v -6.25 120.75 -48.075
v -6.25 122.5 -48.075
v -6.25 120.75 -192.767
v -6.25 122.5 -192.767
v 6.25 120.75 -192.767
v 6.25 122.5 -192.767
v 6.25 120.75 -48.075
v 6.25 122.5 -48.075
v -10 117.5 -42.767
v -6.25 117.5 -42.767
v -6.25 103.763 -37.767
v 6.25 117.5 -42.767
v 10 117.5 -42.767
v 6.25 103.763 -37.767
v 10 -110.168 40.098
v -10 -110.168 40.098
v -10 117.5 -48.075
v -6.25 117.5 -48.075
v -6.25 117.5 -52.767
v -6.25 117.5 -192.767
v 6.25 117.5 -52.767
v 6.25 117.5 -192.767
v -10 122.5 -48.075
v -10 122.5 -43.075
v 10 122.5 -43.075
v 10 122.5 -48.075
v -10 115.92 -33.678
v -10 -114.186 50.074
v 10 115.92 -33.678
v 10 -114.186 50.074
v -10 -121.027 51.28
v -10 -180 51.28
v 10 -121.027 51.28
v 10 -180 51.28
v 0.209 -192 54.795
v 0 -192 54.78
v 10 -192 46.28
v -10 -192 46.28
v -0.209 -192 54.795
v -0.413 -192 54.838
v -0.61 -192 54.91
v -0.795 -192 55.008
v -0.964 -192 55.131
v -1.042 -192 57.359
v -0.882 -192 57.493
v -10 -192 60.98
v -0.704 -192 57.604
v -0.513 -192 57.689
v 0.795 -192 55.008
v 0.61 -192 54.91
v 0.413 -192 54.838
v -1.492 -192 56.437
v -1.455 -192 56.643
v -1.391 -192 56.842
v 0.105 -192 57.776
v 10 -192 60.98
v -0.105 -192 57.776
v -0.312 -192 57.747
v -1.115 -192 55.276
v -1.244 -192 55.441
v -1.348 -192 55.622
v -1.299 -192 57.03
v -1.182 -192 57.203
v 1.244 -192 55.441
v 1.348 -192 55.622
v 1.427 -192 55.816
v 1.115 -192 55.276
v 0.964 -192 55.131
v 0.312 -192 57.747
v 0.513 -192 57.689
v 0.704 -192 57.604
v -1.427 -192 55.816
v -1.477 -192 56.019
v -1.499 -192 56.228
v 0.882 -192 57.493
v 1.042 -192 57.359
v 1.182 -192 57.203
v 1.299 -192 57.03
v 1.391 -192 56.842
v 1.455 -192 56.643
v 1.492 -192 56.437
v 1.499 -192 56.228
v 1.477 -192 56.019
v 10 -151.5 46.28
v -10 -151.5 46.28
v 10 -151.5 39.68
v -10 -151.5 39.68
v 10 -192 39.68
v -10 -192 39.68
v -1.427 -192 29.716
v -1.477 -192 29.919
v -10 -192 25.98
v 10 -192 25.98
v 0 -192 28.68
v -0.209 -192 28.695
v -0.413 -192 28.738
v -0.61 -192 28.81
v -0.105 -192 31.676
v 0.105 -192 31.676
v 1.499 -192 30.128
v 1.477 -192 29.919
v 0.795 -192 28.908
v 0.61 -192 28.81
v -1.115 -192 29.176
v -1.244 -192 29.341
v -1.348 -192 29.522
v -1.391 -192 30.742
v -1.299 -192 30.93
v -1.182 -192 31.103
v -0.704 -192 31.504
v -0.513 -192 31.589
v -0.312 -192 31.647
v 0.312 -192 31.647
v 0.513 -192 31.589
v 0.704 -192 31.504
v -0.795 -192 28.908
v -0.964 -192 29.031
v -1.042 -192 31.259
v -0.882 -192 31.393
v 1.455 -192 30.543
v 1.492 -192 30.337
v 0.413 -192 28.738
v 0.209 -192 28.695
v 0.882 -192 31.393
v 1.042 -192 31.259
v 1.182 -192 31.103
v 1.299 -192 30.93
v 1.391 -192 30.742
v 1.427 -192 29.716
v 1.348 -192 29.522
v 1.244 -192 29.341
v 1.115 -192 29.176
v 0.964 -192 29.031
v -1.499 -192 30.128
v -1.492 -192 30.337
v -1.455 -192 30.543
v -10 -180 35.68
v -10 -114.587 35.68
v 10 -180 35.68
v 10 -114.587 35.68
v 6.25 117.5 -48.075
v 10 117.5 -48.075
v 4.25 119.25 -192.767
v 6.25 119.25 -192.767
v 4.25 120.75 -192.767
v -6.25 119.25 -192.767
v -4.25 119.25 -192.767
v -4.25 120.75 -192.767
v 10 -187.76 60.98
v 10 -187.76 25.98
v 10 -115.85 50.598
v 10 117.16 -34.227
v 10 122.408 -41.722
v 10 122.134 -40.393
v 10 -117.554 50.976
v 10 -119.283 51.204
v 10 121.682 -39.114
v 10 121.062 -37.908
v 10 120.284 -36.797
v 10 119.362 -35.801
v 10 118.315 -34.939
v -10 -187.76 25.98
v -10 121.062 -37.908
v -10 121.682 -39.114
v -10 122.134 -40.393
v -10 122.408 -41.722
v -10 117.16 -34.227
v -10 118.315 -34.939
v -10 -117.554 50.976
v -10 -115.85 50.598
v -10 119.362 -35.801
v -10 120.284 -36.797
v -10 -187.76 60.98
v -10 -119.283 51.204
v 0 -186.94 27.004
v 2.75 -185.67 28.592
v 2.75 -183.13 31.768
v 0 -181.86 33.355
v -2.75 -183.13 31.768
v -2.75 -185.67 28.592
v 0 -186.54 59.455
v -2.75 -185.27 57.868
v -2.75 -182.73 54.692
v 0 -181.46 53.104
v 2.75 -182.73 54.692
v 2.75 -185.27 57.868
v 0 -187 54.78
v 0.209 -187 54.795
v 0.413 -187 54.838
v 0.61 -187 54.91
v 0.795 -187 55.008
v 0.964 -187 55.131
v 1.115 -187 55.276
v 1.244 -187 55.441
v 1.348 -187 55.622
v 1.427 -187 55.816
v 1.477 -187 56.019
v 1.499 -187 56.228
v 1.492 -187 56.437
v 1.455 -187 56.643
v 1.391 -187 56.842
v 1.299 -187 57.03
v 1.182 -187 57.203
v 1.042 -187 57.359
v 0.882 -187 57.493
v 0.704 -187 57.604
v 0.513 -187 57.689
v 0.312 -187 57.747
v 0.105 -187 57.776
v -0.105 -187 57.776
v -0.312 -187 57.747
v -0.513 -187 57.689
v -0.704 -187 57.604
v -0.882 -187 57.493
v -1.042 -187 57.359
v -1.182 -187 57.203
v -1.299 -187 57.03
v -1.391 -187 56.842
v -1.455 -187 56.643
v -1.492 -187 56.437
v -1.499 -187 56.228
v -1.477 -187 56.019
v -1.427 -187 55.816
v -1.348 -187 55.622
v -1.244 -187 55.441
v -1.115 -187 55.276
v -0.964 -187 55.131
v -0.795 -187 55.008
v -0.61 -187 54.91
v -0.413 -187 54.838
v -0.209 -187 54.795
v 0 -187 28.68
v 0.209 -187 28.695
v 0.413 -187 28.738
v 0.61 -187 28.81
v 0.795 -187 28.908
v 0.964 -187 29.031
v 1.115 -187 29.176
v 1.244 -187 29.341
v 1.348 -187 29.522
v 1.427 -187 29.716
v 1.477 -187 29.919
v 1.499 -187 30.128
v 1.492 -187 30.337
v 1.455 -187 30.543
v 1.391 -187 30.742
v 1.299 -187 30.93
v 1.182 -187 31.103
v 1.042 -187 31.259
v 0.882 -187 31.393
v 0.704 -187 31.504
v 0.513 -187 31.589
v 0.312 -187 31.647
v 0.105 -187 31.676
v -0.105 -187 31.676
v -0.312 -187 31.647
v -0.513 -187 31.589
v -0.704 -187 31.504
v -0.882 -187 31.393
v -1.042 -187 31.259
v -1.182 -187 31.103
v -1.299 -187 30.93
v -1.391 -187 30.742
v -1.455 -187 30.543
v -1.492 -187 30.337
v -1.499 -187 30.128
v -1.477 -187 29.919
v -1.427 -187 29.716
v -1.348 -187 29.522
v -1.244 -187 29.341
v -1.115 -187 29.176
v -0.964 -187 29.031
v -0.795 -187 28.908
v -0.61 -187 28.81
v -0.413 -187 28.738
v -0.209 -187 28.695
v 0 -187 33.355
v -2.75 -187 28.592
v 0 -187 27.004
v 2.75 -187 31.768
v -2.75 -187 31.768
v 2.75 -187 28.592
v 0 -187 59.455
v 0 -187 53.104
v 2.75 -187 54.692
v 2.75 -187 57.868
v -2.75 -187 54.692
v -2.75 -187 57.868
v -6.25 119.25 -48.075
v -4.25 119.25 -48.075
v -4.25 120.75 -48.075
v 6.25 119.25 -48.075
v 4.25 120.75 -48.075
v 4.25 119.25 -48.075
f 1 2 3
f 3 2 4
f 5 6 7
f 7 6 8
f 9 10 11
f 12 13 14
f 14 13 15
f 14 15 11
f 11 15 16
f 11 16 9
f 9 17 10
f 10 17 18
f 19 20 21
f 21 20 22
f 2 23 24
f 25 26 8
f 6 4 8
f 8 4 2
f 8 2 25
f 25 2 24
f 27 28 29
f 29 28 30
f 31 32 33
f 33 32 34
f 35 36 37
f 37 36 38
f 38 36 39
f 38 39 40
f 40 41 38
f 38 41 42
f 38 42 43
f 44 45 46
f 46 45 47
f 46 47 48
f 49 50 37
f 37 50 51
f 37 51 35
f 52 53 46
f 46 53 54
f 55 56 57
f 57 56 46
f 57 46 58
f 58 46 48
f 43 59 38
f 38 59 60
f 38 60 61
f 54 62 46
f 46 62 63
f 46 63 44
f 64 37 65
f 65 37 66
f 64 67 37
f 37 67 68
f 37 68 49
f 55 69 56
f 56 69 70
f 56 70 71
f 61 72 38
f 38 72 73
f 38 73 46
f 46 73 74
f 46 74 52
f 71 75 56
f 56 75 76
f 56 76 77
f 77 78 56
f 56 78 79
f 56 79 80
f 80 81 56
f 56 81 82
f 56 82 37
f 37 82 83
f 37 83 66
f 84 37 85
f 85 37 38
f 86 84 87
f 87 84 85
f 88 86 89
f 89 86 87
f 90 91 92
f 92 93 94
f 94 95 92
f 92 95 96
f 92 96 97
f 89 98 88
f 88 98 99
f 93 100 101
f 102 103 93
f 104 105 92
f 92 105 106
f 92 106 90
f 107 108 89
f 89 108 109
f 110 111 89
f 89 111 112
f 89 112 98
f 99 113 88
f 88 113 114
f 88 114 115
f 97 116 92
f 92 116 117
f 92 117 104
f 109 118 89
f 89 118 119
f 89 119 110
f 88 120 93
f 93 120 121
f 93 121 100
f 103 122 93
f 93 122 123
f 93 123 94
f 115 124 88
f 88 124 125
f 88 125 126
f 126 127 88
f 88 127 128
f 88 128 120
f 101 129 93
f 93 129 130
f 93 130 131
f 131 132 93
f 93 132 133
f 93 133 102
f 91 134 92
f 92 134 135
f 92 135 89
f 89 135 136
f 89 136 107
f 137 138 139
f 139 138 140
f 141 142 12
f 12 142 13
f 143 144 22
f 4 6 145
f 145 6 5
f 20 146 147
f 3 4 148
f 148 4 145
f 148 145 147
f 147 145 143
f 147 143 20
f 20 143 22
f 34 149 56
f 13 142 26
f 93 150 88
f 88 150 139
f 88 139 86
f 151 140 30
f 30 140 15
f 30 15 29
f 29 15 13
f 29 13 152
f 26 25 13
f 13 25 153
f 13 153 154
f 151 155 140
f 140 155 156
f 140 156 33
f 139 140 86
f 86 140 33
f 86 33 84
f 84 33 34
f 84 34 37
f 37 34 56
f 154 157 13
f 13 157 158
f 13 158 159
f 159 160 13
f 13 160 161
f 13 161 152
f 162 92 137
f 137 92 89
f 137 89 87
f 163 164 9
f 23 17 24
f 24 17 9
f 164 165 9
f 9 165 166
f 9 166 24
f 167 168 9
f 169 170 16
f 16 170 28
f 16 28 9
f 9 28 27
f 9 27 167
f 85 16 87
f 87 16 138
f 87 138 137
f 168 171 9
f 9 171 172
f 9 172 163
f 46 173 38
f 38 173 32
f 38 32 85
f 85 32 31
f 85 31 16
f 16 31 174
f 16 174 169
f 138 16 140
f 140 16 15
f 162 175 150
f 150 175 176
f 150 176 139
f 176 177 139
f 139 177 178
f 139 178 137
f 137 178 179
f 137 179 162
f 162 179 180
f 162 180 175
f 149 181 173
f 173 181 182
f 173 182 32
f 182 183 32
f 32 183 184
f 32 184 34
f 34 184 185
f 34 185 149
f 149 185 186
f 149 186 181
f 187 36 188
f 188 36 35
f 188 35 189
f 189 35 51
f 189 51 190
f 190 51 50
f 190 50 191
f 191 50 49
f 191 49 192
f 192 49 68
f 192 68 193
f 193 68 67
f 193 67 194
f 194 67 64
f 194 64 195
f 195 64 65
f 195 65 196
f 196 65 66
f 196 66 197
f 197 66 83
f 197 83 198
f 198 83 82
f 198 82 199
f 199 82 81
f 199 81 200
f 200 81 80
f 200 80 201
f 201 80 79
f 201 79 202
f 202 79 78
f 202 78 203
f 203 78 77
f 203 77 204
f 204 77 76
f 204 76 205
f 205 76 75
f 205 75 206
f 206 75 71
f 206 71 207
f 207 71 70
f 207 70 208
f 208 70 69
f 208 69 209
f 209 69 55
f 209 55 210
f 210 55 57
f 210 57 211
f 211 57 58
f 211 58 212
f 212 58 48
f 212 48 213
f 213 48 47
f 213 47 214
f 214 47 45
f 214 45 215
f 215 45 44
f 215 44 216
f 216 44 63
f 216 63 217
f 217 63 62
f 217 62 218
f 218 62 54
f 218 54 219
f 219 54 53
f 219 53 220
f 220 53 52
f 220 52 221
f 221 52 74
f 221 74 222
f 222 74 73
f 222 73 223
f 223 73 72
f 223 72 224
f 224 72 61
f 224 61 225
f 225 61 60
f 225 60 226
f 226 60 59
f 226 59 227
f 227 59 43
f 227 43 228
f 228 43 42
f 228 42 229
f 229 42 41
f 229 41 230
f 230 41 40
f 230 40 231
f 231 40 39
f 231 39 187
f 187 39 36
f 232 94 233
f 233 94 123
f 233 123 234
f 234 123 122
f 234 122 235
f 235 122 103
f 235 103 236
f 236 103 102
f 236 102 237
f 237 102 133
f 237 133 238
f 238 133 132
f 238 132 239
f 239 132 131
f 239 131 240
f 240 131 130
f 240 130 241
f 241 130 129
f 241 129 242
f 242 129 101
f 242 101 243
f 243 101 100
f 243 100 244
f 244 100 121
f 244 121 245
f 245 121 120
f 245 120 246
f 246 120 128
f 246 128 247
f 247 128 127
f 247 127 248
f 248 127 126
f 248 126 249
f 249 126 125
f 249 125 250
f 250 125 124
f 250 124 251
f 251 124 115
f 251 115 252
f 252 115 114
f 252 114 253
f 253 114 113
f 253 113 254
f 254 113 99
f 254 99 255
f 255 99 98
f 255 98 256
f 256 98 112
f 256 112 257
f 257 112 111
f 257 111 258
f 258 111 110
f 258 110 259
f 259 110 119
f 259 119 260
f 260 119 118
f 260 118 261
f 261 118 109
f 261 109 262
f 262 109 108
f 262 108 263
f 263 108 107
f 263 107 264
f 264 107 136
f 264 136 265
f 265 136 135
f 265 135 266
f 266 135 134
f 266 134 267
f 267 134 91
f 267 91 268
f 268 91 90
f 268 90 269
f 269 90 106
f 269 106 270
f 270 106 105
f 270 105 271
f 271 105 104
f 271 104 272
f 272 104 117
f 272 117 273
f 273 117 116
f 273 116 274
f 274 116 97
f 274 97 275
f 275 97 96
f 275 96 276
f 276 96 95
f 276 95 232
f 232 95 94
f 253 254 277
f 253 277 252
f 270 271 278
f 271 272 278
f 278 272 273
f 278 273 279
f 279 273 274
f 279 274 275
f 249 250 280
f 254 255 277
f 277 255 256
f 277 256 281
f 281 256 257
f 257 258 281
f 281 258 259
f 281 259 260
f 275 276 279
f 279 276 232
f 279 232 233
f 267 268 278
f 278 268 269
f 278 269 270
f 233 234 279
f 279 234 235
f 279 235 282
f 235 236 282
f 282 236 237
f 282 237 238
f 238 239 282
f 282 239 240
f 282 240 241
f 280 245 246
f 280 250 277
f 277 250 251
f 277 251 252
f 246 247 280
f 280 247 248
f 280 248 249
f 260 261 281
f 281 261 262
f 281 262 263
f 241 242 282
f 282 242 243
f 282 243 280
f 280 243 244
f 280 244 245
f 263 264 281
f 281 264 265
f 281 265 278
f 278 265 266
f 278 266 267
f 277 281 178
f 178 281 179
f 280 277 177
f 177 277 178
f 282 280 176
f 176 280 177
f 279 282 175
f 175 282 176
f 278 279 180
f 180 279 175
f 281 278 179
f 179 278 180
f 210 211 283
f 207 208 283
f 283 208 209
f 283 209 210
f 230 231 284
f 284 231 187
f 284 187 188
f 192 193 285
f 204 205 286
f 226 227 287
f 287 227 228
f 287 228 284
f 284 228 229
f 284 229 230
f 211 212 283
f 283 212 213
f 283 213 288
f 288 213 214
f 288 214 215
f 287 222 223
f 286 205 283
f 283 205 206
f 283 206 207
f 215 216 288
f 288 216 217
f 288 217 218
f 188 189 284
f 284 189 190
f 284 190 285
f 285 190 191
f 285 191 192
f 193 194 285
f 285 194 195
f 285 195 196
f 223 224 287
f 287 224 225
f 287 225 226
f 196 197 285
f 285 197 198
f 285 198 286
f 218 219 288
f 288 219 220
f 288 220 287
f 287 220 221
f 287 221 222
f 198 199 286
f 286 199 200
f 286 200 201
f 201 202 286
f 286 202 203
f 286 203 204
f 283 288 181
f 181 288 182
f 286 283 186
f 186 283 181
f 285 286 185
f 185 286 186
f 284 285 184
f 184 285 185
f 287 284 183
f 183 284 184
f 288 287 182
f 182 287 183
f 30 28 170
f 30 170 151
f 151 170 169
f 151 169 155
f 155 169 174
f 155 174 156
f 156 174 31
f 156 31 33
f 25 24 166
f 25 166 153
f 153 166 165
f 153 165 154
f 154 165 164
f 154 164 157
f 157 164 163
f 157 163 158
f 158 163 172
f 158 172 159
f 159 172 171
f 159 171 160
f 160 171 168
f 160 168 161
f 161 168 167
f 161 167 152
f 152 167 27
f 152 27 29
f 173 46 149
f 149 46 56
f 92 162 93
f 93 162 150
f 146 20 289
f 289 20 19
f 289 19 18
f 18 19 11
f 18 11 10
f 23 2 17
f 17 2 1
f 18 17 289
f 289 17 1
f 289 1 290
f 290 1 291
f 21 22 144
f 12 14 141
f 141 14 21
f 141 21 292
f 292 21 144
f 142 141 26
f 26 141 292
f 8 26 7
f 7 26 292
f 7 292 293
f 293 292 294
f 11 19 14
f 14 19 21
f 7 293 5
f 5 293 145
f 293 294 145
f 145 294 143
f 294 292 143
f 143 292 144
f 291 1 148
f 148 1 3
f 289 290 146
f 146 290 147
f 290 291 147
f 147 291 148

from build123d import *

# Parameters (mm, degrees)
BOSS_EXTRUDE1_DEPTH = 10
CHAMFER1_SIZE       = 7.802060087
CHAMFER1_SIZE_2     = 10
BOSS_EXTRUDE2_DEPTH = 20
SKETCH7_R           = 1.5
CUT_EXTRUDE1_DEPTH  = 20
CUT_EXTRUDE3_DEPTH  = 20
FILLET5_R           = 20
FILLET6_R           = 10
SKETCH10_W          = 5.3
SKETCH10_H          = 4.24
CUT_EXTRUDE4_DEPTH  = 273.805653344
SKETCH11_W          = 3.75
SKETCH11_H          = 144.691495626
CUT_EXTRUDE5_DEPTH  = 370.011076387
BOSS_EXTRUDE4_DEPTH = 12.5
SKETCH12_W          = 2
SKETCH12_H          = 1.5
CUT_EXTRUDE6_DEPTH  = 144.691496


with BuildPart() as part:
    # Sketch2 → Boss-Extrude1 (new, symmetric)
    with BuildSketch(Plane(origin=(0, 0, 0), x_dir=(0, 0, -1), z_dir=(1, 0, 0))):
        Polygon((36.072931518, 122.5), (-51.279924706, -117.5), (-51.279924706, -192), (-46.279924706, -192), (-46.279924706, -151.5), (-39.679924706, -151.5), (-39.679924706, -192), (-35.679924706, -192), (-35.679924706, -117.5), (-42.766502526, -117.5), (42.766502526, 117.5), (192.766502526, 117.5), (192.766502526, 122.5), align=None)
    extrude(amount=BOSS_EXTRUDE1_DEPTH, both=True)

    # Chamfer1
    # the kernel refuses this chamfer: 10, 7.802060087 mm, written as the material it adds along each edge
    with BuildSketch(Plane(origin=(-10, -117.5, 42.766502526), x_dir=(0, 0.9542611885293297, -0.298974219735734), z_dir=(1, 0, 0))) as chamfer1_piece_1_section:
        Polygon((CHAMFER1_SIZE * 0.998967402661, -CHAMFER1_SIZE * 0.0454326803806), (CHAMFER1_SIZE_2 * 0.298974219736, -CHAMFER1_SIZE_2 * 0.954261188529), (0, 0), align=None)
    chamfer1_piece_1 = extrude(amount=20, mode=Mode.PRIVATE)
    chamfer1_piece_1 = split(chamfer1_piece_1, bisect_by=Plane(origin=(0, -114.855220314, 35.679924706), z_dir=(0, 0, 1)), keep=Keep.TOP, mode=Mode.PRIVATE)
    add(chamfer1_piece_1)

    # Sketch6 → Boss-Extrude2 (add)
    with BuildSketch(Plane(origin=(10, 0, 0), x_dir=(0, 0, -1), z_dir=(1, 0, 0))):
        Polygon((-51.279924706, -180), (-66.279924706, -192), (-51.279924706, -192), align=None)
        Polygon((-35.679924706, -192), (-20.679924706, -192), (-35.679924706, -180), align=None)
    extrude(amount=-BOSS_EXTRUDE2_DEPTH)

    # Sketch7 → Cut-Extrude1 (cut)
    with BuildSketch(Plane(origin=(0, -192, 0), x_dir=(-1, 0, 0), z_dir=(0, -1, 0))):
        with Locations(Location((0, -56.279924706, 0), (0, 0, 90))):
            Circle(SKETCH7_R)
        with Locations(Location((0, -30.179924706, 0), (0, 0, 90))):
            Circle(SKETCH7_R)
    extrude(amount=-CUT_EXTRUDE1_DEPTH, mode=Mode.SUBTRACT)

    # Sketch9 → Cut-Extrude3 (cut)
    with BuildSketch(Plane(origin=(0, -187, 0), x_dir=(-1, 0, 0), z_dir=(0, -1, 0))):
        Polygon((2.75, -57.867637946), (2.75, -54.692211466), (0, -53.104498226), (-2.75, -54.692211466), (-2.75, -57.867637946), (0, -59.455351187), align=None)
        Polygon((2.75, -31.767637946), (2.75, -28.592211466), (0, -27.004498226), (-2.75, -28.592211466), (-2.75, -31.767637946), (0, -33.355351187), align=None)
    extrude(amount=-CUT_EXTRUDE3_DEPTH, mode=Mode.SUBTRACT)

    # Fillet5
    fillet5_edges = [part.edges().sort_by_distance(p)[0] for p in [
        (0, -117.5, 51.279924706),
    ]]
    fillet(fillet5_edges, radius=FILLET5_R)

    # Fillet6
    fillet6_edges = [part.edges().sort_by_distance(p)[0] for p in [
        (0, 122.5, -36.072931518),
    ]]
    fillet(fillet6_edges, radius=FILLET6_R)

    # Sketch10 → Cut-Extrude4 (cut, through all)
    with BuildSketch(Plane(origin=(10, 0, 0), x_dir=(0, 0, -1), z_dir=(1, 0, 0))):
        with Locations((-63.629924706, -189.88)):
            Rectangle(SKETCH10_W, SKETCH10_H)
        with Locations((-23.329924706, -189.88)):
            Rectangle(SKETCH10_W, SKETCH10_H)
    extrude(amount=-CUT_EXTRUDE4_DEPTH, mode=Mode.SUBTRACT)

    # Sketch11 → Cut-Extrude5 (cut, through all)
    with BuildSketch(Plane(origin=(0, 122.5, 0), x_dir=(1, 0, 0), z_dir=(0, 1, 0))):
        with Locations((-8.125, 120.420754713)):
            Rectangle(SKETCH11_W, SKETCH11_H)
        with Locations((8.125, 120.420754713)):
            Rectangle(SKETCH11_W, SKETCH11_H)
    extrude(amount=-CUT_EXTRUDE5_DEPTH, mode=Mode.SUBTRACT)

    # Sketch13 → Boss-Extrude4 (add)
    with BuildSketch(Plane(origin=(6.25, 0, 0), x_dir=(0, 0, -1), z_dir=(1, 0, 0))):
        Polygon((52.766502526, 117.5), (37.766502526, 103.762612903), (42.766502526, 117.5), align=None)
    extrude(amount=-BOSS_EXTRUDE4_DEPTH)

    # Sketch12 → Cut-Extrude6 (cut)
    with BuildSketch(Plane(origin=(0, 0, -192.766502526), x_dir=(-1, 0, 0), z_dir=(0, 0, -1))):
        with Locations((-5.25, 120)):
            Rectangle(SKETCH12_W, SKETCH12_H)
        with Locations((5.25, 120)):
            Rectangle(SKETCH12_W, SKETCH12_H)
    extrude(amount=-CUT_EXTRUDE6_DEPTH, mode=Mode.SUBTRACT)


solid = part.part
